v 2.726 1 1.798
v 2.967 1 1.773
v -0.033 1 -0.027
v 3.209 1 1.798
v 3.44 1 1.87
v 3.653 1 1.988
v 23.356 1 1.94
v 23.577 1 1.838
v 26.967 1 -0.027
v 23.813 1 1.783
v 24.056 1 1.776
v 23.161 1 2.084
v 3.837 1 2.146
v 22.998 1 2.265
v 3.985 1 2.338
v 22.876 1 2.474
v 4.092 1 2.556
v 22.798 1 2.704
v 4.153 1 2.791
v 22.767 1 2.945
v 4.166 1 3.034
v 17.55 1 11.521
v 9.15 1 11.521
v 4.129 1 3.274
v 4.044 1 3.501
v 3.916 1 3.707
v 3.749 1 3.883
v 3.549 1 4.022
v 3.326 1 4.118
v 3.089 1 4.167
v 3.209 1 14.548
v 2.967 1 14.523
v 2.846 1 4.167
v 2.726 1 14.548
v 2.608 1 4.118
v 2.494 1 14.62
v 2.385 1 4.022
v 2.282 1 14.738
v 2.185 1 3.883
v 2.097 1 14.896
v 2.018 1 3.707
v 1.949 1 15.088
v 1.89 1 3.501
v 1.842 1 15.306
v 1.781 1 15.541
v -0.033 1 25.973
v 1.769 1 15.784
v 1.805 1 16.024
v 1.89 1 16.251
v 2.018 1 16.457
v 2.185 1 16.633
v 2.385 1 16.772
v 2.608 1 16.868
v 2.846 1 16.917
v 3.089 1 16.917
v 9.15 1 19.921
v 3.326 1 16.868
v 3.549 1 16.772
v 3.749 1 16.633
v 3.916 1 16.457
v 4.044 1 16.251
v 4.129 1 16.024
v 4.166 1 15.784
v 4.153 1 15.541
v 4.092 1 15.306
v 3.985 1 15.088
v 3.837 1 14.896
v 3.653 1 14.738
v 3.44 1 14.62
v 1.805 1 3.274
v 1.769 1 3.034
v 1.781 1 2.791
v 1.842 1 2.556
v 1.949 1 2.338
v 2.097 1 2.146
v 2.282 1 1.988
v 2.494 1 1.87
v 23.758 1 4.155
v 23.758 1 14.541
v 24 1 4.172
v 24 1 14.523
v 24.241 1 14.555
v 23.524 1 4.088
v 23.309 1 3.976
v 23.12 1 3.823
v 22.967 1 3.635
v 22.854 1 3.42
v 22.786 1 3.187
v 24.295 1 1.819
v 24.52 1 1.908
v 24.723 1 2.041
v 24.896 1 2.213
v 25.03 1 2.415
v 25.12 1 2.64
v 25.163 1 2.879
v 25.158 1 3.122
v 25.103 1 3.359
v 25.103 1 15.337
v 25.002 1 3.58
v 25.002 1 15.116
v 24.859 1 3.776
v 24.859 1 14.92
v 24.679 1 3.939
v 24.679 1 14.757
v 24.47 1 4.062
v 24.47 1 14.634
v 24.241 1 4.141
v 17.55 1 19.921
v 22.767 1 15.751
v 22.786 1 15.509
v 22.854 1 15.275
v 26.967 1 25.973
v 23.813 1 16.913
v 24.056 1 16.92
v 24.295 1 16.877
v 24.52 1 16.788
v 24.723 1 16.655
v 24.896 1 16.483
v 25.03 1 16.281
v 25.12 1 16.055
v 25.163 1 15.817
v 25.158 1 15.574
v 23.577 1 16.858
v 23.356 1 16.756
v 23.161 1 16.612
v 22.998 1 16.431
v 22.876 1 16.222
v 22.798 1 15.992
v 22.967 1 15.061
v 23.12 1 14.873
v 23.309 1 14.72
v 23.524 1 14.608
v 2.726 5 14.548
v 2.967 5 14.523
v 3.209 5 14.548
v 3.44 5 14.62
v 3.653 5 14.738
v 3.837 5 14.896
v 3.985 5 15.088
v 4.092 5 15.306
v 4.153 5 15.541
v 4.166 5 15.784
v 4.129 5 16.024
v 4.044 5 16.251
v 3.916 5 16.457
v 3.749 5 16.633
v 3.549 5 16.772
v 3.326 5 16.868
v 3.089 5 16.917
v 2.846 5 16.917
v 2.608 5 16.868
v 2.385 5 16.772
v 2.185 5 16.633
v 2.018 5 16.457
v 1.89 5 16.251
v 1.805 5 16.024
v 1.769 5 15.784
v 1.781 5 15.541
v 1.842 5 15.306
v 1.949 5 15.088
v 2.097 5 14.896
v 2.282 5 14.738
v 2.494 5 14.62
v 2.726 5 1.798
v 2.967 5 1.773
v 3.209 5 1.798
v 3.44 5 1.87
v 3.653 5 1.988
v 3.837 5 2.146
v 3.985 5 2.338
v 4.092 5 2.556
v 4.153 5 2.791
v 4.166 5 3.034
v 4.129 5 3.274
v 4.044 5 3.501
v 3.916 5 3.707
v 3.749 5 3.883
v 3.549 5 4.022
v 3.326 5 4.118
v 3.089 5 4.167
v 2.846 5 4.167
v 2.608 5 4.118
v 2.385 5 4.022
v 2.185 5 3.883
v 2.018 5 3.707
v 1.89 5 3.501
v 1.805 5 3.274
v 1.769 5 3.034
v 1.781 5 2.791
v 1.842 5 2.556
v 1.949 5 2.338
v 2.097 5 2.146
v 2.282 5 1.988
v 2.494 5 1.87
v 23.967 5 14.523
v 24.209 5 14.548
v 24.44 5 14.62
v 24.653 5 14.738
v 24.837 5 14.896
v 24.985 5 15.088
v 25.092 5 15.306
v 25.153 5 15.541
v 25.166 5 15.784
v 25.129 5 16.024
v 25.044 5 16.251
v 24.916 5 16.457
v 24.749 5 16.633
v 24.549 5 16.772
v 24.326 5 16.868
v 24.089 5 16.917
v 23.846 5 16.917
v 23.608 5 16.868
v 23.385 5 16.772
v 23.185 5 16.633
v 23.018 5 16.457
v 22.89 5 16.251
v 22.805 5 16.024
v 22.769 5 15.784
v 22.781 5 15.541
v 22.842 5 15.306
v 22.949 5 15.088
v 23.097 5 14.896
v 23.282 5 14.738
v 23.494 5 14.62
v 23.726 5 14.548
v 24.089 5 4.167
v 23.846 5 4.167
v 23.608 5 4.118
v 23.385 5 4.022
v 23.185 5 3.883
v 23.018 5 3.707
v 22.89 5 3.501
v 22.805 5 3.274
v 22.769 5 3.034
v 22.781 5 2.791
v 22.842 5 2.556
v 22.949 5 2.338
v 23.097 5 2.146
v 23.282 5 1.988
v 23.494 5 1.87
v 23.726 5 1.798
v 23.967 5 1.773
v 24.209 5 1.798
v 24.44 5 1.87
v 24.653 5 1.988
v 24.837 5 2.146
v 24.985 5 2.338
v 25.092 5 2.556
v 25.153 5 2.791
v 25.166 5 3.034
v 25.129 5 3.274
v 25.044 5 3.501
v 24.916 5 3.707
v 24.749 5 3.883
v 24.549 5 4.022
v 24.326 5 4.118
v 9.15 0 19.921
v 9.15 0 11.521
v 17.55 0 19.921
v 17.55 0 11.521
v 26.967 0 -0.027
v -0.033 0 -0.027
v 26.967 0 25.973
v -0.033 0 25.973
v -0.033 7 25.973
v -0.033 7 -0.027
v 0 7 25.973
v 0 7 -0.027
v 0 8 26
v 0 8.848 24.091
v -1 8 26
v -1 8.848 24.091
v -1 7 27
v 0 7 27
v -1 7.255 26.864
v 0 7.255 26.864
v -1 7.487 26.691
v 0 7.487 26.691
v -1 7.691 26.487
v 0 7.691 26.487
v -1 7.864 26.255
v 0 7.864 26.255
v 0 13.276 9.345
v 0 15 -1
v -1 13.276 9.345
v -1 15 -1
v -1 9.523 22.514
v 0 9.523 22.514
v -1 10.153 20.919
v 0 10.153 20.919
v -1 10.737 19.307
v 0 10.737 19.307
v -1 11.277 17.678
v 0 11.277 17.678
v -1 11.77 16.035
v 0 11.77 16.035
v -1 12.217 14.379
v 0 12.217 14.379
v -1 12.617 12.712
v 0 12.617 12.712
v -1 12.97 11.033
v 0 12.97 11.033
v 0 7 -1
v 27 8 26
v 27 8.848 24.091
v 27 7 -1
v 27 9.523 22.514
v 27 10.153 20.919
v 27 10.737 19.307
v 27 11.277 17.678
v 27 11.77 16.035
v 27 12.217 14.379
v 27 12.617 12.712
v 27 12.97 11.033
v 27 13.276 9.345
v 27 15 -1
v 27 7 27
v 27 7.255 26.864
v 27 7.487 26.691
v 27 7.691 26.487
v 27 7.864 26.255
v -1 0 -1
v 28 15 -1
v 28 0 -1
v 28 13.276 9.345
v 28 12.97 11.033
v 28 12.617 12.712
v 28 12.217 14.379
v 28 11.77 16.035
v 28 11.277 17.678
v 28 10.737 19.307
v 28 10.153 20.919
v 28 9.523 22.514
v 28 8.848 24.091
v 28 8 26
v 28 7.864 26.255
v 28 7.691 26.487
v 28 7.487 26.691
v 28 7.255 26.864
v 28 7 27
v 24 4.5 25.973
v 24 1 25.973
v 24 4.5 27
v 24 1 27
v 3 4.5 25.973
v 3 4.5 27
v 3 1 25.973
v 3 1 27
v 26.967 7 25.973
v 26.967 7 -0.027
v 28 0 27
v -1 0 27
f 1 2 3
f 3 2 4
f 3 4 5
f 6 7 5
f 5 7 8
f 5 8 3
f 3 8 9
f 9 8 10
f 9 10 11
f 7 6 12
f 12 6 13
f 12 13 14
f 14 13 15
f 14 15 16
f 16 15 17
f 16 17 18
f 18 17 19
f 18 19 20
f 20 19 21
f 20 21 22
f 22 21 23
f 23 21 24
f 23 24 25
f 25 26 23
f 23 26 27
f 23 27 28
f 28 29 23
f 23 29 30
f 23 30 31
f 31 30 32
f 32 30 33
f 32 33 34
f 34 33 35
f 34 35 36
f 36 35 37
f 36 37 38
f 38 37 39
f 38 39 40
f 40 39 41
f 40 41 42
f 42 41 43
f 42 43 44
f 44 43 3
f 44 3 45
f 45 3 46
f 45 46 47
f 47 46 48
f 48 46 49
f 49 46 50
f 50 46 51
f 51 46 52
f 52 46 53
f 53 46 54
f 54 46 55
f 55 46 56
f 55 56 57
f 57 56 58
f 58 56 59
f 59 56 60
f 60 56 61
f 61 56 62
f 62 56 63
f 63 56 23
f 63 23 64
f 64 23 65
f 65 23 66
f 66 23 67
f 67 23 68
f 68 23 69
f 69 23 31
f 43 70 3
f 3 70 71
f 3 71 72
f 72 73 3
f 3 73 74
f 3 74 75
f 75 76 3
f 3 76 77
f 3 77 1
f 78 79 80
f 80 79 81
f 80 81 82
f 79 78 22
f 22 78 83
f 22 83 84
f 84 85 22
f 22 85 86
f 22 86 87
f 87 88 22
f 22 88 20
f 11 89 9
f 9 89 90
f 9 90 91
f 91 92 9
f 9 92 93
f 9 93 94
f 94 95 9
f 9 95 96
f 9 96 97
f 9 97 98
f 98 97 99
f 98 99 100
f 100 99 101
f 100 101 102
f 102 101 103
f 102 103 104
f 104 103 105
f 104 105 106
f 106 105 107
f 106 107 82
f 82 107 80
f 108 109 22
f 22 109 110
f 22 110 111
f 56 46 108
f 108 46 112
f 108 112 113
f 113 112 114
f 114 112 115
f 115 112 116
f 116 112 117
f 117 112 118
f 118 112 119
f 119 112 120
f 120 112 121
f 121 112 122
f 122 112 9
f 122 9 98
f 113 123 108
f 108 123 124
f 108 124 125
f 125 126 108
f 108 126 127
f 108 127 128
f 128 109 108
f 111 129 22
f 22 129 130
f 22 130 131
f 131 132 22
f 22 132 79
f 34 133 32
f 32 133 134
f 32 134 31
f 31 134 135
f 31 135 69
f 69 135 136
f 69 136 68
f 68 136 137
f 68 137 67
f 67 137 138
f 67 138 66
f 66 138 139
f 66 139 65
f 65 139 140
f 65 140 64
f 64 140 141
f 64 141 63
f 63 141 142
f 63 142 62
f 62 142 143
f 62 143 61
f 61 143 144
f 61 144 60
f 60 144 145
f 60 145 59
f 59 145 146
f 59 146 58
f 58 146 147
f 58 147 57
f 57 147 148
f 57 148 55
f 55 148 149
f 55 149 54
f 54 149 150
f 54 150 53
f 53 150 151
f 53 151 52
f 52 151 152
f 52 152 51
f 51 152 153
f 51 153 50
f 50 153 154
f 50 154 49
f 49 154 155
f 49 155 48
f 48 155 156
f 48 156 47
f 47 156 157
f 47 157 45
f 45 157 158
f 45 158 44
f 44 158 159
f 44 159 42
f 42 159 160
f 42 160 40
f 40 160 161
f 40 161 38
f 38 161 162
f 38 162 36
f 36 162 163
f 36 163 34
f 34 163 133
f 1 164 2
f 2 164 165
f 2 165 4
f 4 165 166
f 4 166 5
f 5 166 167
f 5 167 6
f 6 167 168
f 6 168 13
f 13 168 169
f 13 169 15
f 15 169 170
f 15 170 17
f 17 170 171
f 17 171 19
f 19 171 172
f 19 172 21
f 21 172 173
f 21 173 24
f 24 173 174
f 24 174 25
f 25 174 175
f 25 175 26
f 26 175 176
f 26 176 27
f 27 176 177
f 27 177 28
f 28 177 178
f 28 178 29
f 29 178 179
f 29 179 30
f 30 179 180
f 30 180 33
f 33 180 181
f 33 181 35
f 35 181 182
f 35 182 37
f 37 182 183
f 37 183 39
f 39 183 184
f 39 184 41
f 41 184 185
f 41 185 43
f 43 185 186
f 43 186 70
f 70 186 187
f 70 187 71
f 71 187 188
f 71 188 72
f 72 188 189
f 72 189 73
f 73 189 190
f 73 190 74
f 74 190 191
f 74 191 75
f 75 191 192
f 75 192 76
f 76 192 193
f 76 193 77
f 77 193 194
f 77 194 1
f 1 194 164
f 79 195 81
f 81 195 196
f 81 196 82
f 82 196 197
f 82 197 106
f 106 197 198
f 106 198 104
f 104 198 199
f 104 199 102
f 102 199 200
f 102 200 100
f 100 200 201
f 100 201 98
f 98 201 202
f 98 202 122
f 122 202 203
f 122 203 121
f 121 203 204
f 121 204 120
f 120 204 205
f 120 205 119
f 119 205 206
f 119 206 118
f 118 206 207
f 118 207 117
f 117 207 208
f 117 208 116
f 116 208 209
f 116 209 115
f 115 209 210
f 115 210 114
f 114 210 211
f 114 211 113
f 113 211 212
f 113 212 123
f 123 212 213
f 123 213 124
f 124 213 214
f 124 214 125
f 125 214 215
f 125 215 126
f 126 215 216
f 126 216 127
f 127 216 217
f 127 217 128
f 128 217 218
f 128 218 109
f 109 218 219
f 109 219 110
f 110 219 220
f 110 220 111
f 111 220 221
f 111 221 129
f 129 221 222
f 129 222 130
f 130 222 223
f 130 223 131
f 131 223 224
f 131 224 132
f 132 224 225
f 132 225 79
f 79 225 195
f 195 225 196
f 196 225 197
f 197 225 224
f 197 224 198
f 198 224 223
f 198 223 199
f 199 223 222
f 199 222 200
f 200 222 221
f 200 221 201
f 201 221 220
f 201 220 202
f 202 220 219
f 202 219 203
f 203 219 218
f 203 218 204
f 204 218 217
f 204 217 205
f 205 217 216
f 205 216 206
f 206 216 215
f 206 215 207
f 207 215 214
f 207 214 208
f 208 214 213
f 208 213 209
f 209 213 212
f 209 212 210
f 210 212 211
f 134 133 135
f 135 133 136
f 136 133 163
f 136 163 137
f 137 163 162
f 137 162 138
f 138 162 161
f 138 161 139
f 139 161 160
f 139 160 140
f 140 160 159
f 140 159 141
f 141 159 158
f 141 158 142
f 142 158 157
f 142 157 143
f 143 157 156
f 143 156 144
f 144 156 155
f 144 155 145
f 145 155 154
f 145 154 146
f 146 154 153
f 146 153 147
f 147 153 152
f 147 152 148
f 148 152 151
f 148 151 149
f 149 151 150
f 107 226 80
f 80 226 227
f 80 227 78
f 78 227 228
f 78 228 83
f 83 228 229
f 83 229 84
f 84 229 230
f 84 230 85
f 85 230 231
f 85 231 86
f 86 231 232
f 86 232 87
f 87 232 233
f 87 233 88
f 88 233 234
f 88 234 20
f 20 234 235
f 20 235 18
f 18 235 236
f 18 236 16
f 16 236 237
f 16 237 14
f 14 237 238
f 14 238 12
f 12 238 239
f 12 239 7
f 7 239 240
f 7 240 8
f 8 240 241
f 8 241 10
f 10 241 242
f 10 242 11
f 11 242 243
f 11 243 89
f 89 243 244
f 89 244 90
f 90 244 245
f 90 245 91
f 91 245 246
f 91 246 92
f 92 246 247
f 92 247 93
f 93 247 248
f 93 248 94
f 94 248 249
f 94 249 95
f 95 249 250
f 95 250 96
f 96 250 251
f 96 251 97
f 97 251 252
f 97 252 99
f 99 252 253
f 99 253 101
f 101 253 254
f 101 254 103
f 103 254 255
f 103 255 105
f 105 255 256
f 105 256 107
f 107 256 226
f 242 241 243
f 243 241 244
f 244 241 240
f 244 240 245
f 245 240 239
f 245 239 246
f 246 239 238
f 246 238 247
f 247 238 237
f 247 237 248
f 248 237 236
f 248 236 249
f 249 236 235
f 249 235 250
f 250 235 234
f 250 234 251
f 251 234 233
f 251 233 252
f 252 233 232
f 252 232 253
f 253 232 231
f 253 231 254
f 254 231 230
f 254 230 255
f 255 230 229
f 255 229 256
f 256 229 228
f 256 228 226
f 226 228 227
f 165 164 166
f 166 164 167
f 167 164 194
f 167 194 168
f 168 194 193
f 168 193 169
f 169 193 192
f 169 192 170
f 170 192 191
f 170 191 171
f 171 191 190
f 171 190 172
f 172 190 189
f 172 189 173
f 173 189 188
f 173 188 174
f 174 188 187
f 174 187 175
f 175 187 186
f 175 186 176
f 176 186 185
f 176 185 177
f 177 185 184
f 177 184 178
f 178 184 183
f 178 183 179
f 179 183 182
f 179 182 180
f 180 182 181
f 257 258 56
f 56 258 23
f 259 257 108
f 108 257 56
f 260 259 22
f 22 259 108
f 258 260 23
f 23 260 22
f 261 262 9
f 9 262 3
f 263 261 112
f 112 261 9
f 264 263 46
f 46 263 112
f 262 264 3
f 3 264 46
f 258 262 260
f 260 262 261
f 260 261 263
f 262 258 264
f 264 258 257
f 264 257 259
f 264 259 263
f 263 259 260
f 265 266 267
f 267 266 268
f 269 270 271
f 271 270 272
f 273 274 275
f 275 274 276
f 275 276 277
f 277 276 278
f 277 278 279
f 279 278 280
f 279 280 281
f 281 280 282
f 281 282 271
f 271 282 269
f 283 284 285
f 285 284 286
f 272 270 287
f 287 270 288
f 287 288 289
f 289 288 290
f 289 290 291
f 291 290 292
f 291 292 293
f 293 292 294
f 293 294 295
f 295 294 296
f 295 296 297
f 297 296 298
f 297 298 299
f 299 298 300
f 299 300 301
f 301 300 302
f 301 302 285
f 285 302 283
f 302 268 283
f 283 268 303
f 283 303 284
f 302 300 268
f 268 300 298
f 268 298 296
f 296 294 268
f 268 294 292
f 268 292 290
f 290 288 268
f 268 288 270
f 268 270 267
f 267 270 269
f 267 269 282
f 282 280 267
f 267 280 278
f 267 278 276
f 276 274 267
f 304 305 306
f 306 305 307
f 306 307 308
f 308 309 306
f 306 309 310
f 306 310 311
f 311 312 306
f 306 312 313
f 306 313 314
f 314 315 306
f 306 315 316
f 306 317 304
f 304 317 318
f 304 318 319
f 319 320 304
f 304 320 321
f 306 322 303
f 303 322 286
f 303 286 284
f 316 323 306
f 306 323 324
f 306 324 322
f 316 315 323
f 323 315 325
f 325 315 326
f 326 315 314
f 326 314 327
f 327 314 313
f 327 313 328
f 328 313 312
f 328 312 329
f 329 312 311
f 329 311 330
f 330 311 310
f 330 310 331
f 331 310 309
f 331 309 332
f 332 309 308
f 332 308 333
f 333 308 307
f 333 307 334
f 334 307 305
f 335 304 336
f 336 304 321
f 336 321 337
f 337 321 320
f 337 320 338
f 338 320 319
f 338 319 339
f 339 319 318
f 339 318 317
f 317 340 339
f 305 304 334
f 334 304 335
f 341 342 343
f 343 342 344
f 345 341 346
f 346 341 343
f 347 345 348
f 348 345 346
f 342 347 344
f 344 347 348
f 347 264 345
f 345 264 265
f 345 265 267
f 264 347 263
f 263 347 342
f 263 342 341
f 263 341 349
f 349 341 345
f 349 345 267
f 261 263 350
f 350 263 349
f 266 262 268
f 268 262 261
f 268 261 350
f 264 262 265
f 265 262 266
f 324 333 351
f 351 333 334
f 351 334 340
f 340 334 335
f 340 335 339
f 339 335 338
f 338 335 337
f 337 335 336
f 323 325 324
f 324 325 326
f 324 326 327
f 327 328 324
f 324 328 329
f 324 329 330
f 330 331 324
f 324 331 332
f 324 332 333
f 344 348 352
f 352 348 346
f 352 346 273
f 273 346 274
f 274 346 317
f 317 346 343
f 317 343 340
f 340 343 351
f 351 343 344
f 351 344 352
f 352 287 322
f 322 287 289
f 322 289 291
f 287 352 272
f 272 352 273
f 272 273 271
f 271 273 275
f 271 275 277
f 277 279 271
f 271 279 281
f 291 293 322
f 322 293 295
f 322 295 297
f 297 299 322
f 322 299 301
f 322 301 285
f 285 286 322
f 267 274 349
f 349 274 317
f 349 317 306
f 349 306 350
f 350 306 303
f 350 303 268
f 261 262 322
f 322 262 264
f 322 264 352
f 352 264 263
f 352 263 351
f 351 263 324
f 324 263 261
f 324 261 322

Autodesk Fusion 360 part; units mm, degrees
sketch "Sketch2" plane through (0, 0, 0) normal (0, 1, 0) x (1, 0, 0)
  circle A0 centre (2.9671, -2.9729) radius 1.2
  circle A1 centre (23.9671, -2.9729) radius 1.2
  circle A2 centre (23.9671, -15.7229) radius 1.2
  circle A3 centre (2.9671, -15.7229) radius 1.2
  line L0 (9.1497, -11.5214) -> (9.1497, -19.9214)
  line L1 (9.1497, -19.9214) -> (17.5497, -19.9214)
  line L2 (17.5497, -19.9214) -> (17.5497, -11.5214)
  line L3 (17.5497, -11.5214) -> (9.1497, -11.5214)
  line L4 (26.9671, 0.0271) -> (26.9671, -25.9729)
  line L5 (26.9671, -25.9729) -> (-0.0329, -25.9729)
  line L6 (-0.0329, -25.9729) -> (-0.0329, 0.0271)
  line L7 (-0.0329, 0.0271) -> (26.9671, 0.0271)
  line L8 (-1, -27) -> (28, -27)
  line L9 (28, -27) -> (28, 1)
  line L10 (28, 1) -> (-1, 1)
  line L11 (-1, 1) -> (-1, -27)
  dimension "d3" = 2.4
  dimension "d4" = 2.4
  dimension "d5" = 2.4
  dimension "d6" = 2.4
  dimension "d7" = 8.4
  dimension "d8" = 8.4
extrude "Extrude12" add sketch "Sketch2" along normal blind 1 contours L4 L5 L6 L7 makes body 1
extrude "Extrude11" add sketch "Sketch2" along normal blind 7 separate body contours L8 L9 L10 L11 makes body 2
extrude "Extrude13" add sketch "Sketch2" along normal blind 5 contours A0 | A1 | A2 | A3 bodies 1
sketch "Sketch5" plane through (0, 0, 0) normal (0, 0, 1) x (1, 0, 0)
  line L0 (3, 4.5) -> (24, 4.5)
  line L1 (24, 4.5) -> (24, 1)
  line L2 (24, 1) -> (3, 1)
  line L3 (3, 1) -> (3, 4.5)
  dimension "d37" = 21
  dimension "d38" = 3.5
extrude "Extrude14" cut sketch "Sketch5" along normal blind 30 bodies 1 2
extrude "Extrude15" add 4 faces at (2.555, 5, 16.0039) (23.555, 5, 16.0039) (23.0762, 5, 2.6783) (2.597, 5, 2.5741) along direction (0, -1, 0) blind 4 on bodies 1 bodies 1
sketch "Sketch6" plane through (0, 0, 0) normal (1, 0, 0) x (0, 1, 0)
  line L0 (7, -1) -> (15, -1)
  line L1 (15, -1) -> (13.2758, 9.3453)
  line L2 (8.8483, 24.0914) -> (8, 26)
  arc A0 (8, 26) -> (7, 27) centre (6.2, 25.2) ccw
  line L3 (7, 27) -> (7, -1)
  arc A1 (13.2758, 9.3453) -> (8.8483, 24.0914) centre (-46.8942, -0.683) ccw
  dimension "d43" = 61
extrude "Extrude16" add sketch "Sketch6" along normal blind 28 bodies 2
extrude "Extrude17" cut 1 faces at (0, 11.7586, 2.7728) along direction (1, 0, 0) blind 27 on bodies 2 bodies 2
extrude "Extrude18" add sketch "Sketch6" against normal blind 1 bodies 2
extrude "Extrude9" [suppressed]
